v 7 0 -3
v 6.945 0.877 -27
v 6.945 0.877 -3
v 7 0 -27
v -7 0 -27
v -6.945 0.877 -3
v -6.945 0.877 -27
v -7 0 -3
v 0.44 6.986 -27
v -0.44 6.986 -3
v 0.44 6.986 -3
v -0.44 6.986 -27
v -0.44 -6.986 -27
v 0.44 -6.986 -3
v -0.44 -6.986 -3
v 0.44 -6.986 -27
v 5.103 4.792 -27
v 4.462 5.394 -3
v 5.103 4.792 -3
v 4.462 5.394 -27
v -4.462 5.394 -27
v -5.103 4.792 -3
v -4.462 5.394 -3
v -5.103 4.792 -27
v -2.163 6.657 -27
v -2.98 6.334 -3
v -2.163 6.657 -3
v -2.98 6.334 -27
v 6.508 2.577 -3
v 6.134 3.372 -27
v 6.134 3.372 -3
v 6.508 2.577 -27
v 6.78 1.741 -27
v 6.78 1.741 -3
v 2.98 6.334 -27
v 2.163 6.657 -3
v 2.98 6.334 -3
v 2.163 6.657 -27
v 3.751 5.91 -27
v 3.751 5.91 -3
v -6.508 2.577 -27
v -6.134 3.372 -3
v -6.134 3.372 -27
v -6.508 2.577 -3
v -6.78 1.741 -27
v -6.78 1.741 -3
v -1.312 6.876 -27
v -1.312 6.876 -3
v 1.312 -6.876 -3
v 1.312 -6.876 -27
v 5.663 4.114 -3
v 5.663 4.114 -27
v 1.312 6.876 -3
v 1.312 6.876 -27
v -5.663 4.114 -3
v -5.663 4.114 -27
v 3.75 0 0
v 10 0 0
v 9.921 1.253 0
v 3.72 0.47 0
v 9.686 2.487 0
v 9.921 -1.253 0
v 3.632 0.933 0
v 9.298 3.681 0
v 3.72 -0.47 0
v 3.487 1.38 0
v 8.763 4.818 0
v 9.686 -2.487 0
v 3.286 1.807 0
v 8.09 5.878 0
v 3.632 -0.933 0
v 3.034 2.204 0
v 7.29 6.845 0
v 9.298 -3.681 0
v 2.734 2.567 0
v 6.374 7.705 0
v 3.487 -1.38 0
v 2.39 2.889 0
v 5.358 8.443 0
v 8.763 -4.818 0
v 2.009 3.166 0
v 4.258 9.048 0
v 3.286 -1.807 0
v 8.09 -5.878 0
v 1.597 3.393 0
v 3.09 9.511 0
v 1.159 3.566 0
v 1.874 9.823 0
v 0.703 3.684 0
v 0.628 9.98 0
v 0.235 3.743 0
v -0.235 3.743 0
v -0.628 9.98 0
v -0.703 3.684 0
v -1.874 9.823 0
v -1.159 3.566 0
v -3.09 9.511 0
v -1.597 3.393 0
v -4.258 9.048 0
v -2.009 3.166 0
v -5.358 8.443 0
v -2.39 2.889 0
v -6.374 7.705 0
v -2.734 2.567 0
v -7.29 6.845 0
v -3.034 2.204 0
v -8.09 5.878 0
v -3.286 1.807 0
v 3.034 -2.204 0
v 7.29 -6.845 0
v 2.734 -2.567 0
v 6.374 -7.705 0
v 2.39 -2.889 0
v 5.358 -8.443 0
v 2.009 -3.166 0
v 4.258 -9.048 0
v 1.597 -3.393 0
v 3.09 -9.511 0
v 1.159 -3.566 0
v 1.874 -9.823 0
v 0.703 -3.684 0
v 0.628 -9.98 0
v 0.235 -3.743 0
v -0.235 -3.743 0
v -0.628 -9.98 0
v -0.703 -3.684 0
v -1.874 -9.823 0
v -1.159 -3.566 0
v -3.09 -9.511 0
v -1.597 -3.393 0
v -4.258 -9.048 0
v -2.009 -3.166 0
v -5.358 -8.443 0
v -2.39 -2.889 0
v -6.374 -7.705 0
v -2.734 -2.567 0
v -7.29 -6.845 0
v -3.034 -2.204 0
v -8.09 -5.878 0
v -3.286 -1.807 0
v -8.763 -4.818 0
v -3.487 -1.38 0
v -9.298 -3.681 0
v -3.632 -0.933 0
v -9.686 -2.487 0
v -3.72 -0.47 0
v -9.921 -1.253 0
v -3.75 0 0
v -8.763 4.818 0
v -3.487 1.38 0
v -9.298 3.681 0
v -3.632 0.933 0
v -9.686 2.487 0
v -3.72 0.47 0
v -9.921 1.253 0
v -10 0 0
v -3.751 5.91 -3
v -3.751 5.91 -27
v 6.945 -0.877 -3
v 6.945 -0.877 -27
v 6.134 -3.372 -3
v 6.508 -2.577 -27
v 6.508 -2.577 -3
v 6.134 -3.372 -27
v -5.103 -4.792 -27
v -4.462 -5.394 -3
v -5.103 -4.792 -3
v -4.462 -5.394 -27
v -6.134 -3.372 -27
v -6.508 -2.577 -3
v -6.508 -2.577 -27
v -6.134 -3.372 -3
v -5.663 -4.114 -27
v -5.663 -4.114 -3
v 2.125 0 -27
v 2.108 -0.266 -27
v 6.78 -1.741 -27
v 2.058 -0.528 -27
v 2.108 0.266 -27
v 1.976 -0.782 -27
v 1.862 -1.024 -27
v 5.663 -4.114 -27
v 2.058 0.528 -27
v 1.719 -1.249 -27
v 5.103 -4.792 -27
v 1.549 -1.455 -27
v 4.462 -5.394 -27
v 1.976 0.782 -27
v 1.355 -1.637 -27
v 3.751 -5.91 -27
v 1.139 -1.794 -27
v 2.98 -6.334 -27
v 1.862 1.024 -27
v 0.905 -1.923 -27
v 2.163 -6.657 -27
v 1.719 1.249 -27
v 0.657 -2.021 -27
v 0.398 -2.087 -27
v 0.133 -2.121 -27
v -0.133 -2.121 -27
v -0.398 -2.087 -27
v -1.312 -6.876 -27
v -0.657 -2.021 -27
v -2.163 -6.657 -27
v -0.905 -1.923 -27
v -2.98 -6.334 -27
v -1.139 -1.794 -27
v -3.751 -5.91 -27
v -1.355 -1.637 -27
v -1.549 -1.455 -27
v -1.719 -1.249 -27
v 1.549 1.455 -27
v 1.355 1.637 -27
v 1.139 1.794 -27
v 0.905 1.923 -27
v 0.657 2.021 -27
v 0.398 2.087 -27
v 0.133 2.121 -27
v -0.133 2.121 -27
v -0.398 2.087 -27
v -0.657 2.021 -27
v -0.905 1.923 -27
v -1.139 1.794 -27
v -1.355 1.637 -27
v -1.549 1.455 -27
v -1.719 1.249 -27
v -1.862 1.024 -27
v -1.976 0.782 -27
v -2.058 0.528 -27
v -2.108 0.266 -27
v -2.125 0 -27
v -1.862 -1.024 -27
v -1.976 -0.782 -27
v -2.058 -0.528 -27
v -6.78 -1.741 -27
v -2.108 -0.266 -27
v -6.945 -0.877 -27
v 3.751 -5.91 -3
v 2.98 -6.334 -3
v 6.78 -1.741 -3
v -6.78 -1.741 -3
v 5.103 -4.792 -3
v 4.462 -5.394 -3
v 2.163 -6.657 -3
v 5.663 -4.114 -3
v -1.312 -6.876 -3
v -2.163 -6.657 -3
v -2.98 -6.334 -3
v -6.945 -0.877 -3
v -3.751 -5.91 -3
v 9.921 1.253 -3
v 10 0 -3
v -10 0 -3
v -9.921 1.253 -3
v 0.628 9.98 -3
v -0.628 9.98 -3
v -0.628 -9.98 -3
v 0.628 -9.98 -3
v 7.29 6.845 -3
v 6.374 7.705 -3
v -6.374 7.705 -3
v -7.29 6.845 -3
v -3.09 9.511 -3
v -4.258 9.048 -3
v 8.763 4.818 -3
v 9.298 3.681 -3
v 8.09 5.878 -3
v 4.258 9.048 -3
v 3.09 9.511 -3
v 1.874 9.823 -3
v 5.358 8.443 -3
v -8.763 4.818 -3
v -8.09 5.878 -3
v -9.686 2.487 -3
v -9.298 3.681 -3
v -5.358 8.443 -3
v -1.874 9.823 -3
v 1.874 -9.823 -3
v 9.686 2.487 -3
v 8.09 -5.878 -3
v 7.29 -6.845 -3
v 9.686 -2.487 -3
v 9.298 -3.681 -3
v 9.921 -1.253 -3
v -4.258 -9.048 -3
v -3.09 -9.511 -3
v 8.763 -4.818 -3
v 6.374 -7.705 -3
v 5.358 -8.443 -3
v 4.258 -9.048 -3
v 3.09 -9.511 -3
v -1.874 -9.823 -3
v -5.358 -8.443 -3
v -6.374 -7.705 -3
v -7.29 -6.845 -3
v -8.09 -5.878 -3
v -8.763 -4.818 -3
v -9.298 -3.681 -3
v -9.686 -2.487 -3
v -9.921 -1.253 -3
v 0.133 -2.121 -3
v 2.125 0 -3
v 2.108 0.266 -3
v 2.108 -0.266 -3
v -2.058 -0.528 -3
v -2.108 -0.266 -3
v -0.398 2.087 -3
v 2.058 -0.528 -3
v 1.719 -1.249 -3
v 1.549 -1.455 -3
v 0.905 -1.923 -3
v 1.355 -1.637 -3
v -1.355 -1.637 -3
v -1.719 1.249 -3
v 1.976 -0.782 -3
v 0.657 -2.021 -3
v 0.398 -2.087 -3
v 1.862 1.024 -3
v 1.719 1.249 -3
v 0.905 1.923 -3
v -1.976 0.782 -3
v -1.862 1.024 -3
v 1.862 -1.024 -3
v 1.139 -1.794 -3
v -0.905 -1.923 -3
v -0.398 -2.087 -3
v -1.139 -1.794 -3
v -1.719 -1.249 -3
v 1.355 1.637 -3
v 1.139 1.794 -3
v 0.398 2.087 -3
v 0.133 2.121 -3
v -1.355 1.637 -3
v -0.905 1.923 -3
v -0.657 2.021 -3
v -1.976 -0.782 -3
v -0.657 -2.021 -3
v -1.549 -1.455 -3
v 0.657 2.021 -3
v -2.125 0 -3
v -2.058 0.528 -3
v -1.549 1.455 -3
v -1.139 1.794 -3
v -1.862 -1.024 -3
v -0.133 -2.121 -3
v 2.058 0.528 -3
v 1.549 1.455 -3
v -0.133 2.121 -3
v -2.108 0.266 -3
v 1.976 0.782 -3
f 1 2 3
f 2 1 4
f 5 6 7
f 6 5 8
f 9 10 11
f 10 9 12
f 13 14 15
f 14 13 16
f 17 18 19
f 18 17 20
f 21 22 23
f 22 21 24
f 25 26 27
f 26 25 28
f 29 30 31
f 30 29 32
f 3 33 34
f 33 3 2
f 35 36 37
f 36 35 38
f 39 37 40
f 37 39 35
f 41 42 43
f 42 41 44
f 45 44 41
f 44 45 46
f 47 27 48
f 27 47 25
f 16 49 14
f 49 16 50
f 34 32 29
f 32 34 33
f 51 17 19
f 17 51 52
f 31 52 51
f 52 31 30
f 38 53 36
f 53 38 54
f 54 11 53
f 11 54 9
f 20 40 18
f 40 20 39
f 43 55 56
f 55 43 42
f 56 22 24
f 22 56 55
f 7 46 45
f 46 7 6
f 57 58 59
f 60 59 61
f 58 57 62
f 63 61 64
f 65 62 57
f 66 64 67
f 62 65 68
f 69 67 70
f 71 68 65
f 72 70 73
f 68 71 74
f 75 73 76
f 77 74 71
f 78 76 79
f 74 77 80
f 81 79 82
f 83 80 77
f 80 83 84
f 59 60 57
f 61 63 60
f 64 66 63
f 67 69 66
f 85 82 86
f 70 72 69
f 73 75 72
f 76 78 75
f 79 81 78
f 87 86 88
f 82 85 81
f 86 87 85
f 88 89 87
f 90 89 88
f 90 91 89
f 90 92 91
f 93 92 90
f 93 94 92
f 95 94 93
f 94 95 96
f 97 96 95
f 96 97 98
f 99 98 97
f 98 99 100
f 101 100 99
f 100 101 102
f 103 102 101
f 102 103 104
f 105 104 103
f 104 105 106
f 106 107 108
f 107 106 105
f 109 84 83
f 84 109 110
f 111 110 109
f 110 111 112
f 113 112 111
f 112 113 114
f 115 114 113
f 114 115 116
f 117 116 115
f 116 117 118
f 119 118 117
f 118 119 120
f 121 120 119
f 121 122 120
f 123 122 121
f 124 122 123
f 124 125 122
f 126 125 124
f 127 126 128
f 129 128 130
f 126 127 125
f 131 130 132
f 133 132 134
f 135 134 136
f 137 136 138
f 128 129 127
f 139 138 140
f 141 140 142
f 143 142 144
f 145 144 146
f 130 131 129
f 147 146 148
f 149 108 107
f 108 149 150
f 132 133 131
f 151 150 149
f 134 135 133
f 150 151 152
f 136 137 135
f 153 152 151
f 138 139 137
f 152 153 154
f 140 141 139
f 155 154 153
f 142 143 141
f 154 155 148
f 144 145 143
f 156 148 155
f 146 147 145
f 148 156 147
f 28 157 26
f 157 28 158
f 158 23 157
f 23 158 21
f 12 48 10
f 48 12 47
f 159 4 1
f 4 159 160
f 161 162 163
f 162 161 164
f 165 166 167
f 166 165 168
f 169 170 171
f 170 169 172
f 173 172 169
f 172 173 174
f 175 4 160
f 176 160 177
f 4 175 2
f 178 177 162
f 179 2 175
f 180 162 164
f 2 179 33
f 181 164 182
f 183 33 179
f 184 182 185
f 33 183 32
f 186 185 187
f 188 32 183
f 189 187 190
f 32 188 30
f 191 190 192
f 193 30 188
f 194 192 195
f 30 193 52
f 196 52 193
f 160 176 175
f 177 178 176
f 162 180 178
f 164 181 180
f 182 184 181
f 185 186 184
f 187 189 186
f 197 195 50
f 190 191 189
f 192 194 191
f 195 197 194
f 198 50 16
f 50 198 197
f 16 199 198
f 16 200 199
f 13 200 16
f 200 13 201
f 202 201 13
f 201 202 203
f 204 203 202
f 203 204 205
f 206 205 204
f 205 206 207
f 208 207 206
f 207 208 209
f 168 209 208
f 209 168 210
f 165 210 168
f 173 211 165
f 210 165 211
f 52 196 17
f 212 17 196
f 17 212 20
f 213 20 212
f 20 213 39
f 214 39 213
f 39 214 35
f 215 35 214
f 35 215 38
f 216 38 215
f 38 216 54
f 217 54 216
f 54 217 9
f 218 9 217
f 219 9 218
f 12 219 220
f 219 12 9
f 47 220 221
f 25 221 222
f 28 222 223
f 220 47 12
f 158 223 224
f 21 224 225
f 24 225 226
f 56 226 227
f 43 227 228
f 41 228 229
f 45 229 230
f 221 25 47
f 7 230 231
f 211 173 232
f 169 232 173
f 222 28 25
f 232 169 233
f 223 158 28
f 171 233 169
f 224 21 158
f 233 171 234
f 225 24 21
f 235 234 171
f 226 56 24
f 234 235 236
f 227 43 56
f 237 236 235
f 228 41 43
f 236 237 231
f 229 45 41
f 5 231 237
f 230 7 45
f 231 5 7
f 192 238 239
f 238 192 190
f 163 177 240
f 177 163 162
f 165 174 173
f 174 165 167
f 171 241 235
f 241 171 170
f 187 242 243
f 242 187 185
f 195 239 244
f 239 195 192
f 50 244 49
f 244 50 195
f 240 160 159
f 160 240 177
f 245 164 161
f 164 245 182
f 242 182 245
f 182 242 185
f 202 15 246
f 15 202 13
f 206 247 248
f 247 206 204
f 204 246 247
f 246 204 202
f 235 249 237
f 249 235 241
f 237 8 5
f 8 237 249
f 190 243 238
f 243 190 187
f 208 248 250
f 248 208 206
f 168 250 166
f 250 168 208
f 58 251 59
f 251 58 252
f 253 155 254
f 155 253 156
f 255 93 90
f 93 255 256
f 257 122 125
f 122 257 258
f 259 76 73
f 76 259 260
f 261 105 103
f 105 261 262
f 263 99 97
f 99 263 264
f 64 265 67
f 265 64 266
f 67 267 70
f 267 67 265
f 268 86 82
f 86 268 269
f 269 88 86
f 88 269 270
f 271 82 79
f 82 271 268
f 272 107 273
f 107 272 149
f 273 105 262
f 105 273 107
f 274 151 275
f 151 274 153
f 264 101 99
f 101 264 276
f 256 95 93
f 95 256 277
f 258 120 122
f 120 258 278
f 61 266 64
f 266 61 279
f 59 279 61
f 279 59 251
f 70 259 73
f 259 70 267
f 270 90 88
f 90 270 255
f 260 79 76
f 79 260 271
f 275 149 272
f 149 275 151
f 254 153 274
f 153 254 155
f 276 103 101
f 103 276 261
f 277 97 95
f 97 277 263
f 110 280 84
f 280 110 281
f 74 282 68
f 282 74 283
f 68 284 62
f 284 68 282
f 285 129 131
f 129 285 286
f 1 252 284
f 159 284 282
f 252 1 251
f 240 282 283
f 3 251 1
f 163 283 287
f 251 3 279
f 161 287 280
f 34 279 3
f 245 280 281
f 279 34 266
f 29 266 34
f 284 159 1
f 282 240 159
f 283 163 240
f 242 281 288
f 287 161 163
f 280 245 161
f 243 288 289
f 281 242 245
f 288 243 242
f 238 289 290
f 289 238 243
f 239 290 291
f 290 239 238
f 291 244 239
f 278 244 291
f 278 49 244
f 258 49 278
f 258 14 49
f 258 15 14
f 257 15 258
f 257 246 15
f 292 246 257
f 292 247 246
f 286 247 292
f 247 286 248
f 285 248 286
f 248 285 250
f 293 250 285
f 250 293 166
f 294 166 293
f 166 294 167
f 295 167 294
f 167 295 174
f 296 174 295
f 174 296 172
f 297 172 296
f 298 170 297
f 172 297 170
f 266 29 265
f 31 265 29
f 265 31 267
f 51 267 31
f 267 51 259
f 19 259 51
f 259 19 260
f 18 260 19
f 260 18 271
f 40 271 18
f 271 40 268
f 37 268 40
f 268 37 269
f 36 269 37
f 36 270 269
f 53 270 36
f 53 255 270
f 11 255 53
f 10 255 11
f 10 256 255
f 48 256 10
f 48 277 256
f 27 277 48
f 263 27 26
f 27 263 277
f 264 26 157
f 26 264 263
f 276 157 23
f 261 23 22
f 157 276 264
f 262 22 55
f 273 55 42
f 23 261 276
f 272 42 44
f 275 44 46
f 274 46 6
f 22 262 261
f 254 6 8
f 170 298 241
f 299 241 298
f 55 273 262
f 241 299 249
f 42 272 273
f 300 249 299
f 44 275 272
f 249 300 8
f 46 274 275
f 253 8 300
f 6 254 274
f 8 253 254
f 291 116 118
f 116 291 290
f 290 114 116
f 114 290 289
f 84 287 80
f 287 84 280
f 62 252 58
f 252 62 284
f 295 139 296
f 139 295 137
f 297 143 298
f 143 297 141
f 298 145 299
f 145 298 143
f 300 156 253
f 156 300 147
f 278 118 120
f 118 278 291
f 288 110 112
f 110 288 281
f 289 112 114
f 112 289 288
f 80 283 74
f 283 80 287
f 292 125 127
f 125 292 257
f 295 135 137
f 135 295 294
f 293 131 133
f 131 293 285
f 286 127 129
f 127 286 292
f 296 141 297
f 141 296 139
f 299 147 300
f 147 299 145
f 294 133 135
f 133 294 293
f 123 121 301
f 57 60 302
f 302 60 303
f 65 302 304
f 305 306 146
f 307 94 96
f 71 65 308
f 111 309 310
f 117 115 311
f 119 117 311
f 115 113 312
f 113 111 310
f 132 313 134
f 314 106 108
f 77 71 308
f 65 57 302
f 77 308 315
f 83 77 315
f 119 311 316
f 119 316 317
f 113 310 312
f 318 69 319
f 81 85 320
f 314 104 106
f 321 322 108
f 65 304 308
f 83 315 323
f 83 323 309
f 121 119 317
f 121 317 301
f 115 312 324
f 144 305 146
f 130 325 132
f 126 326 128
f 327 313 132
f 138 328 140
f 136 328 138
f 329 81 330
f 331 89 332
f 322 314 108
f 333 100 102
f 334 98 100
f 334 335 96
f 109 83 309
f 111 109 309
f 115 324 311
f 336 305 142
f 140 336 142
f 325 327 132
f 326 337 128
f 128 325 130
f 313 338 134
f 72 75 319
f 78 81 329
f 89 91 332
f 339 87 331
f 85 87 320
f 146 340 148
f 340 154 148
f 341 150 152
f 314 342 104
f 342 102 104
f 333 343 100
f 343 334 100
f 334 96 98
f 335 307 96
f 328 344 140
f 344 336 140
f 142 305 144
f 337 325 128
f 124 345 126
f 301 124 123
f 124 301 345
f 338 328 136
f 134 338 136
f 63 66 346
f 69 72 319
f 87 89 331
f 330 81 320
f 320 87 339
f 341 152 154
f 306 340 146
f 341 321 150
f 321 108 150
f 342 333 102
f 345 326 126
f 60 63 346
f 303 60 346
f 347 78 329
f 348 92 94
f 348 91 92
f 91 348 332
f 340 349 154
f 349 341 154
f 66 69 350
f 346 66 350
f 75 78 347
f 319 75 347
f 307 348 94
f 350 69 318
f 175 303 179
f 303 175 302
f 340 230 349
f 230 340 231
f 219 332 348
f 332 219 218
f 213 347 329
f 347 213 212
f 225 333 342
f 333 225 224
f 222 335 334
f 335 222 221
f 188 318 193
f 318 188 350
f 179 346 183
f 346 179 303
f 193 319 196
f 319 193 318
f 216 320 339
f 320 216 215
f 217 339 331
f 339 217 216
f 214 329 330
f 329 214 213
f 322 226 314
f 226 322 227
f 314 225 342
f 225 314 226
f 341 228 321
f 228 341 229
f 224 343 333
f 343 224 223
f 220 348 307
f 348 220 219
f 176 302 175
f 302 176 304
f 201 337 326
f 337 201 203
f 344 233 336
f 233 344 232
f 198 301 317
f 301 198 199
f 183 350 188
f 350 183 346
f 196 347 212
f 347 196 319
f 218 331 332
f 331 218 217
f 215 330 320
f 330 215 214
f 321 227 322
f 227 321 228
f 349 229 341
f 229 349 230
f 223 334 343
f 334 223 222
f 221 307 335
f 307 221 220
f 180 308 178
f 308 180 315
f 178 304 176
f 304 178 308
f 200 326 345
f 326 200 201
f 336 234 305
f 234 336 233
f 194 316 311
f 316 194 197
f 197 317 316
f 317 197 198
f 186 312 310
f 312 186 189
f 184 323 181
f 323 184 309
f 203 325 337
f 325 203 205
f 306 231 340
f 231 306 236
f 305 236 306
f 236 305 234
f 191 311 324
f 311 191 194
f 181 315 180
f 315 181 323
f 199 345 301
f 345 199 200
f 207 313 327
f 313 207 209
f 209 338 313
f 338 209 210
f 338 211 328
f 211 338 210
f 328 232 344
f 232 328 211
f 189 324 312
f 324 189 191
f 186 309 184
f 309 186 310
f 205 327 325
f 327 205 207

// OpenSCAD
$fn = 50;


difference() {
	union() {
		translate(v = [0, 0, -27.0000000000]) {
			cylinder(h = 27, r = 7.0000000000);
		}
		translate(v = [0, 0, -3.0000000000]) {
			cylinder(h = 3, r = 10.0000000000);
		}
	}
	union() {
		translate(v = [0, 0, 0]) {
			rotate(a = [0, 0, 0]) {
				difference() {
					union() {
						#translate(v = [0, 0, -27.0000000000]) {
							cylinder(h = 27, r = 2.0000000000);
						}
						#translate(v = [0, 0, -3]) {
							cylinder(h = 3, r = 7.0000000000, r1 = 2.1250000000, r2 = 3.7500000000);
						}
						#translate(v = [0, 0, -27.0000000000]) {
							cylinder(h = 27, r = 2.1250000000);
						}
						#translate(v = [0, 0, -27.0000000000]) {
							cylinder(h = 27, r = 2.0000000000);
						}
					}
					union();
				}
			}
		}
	}
}
